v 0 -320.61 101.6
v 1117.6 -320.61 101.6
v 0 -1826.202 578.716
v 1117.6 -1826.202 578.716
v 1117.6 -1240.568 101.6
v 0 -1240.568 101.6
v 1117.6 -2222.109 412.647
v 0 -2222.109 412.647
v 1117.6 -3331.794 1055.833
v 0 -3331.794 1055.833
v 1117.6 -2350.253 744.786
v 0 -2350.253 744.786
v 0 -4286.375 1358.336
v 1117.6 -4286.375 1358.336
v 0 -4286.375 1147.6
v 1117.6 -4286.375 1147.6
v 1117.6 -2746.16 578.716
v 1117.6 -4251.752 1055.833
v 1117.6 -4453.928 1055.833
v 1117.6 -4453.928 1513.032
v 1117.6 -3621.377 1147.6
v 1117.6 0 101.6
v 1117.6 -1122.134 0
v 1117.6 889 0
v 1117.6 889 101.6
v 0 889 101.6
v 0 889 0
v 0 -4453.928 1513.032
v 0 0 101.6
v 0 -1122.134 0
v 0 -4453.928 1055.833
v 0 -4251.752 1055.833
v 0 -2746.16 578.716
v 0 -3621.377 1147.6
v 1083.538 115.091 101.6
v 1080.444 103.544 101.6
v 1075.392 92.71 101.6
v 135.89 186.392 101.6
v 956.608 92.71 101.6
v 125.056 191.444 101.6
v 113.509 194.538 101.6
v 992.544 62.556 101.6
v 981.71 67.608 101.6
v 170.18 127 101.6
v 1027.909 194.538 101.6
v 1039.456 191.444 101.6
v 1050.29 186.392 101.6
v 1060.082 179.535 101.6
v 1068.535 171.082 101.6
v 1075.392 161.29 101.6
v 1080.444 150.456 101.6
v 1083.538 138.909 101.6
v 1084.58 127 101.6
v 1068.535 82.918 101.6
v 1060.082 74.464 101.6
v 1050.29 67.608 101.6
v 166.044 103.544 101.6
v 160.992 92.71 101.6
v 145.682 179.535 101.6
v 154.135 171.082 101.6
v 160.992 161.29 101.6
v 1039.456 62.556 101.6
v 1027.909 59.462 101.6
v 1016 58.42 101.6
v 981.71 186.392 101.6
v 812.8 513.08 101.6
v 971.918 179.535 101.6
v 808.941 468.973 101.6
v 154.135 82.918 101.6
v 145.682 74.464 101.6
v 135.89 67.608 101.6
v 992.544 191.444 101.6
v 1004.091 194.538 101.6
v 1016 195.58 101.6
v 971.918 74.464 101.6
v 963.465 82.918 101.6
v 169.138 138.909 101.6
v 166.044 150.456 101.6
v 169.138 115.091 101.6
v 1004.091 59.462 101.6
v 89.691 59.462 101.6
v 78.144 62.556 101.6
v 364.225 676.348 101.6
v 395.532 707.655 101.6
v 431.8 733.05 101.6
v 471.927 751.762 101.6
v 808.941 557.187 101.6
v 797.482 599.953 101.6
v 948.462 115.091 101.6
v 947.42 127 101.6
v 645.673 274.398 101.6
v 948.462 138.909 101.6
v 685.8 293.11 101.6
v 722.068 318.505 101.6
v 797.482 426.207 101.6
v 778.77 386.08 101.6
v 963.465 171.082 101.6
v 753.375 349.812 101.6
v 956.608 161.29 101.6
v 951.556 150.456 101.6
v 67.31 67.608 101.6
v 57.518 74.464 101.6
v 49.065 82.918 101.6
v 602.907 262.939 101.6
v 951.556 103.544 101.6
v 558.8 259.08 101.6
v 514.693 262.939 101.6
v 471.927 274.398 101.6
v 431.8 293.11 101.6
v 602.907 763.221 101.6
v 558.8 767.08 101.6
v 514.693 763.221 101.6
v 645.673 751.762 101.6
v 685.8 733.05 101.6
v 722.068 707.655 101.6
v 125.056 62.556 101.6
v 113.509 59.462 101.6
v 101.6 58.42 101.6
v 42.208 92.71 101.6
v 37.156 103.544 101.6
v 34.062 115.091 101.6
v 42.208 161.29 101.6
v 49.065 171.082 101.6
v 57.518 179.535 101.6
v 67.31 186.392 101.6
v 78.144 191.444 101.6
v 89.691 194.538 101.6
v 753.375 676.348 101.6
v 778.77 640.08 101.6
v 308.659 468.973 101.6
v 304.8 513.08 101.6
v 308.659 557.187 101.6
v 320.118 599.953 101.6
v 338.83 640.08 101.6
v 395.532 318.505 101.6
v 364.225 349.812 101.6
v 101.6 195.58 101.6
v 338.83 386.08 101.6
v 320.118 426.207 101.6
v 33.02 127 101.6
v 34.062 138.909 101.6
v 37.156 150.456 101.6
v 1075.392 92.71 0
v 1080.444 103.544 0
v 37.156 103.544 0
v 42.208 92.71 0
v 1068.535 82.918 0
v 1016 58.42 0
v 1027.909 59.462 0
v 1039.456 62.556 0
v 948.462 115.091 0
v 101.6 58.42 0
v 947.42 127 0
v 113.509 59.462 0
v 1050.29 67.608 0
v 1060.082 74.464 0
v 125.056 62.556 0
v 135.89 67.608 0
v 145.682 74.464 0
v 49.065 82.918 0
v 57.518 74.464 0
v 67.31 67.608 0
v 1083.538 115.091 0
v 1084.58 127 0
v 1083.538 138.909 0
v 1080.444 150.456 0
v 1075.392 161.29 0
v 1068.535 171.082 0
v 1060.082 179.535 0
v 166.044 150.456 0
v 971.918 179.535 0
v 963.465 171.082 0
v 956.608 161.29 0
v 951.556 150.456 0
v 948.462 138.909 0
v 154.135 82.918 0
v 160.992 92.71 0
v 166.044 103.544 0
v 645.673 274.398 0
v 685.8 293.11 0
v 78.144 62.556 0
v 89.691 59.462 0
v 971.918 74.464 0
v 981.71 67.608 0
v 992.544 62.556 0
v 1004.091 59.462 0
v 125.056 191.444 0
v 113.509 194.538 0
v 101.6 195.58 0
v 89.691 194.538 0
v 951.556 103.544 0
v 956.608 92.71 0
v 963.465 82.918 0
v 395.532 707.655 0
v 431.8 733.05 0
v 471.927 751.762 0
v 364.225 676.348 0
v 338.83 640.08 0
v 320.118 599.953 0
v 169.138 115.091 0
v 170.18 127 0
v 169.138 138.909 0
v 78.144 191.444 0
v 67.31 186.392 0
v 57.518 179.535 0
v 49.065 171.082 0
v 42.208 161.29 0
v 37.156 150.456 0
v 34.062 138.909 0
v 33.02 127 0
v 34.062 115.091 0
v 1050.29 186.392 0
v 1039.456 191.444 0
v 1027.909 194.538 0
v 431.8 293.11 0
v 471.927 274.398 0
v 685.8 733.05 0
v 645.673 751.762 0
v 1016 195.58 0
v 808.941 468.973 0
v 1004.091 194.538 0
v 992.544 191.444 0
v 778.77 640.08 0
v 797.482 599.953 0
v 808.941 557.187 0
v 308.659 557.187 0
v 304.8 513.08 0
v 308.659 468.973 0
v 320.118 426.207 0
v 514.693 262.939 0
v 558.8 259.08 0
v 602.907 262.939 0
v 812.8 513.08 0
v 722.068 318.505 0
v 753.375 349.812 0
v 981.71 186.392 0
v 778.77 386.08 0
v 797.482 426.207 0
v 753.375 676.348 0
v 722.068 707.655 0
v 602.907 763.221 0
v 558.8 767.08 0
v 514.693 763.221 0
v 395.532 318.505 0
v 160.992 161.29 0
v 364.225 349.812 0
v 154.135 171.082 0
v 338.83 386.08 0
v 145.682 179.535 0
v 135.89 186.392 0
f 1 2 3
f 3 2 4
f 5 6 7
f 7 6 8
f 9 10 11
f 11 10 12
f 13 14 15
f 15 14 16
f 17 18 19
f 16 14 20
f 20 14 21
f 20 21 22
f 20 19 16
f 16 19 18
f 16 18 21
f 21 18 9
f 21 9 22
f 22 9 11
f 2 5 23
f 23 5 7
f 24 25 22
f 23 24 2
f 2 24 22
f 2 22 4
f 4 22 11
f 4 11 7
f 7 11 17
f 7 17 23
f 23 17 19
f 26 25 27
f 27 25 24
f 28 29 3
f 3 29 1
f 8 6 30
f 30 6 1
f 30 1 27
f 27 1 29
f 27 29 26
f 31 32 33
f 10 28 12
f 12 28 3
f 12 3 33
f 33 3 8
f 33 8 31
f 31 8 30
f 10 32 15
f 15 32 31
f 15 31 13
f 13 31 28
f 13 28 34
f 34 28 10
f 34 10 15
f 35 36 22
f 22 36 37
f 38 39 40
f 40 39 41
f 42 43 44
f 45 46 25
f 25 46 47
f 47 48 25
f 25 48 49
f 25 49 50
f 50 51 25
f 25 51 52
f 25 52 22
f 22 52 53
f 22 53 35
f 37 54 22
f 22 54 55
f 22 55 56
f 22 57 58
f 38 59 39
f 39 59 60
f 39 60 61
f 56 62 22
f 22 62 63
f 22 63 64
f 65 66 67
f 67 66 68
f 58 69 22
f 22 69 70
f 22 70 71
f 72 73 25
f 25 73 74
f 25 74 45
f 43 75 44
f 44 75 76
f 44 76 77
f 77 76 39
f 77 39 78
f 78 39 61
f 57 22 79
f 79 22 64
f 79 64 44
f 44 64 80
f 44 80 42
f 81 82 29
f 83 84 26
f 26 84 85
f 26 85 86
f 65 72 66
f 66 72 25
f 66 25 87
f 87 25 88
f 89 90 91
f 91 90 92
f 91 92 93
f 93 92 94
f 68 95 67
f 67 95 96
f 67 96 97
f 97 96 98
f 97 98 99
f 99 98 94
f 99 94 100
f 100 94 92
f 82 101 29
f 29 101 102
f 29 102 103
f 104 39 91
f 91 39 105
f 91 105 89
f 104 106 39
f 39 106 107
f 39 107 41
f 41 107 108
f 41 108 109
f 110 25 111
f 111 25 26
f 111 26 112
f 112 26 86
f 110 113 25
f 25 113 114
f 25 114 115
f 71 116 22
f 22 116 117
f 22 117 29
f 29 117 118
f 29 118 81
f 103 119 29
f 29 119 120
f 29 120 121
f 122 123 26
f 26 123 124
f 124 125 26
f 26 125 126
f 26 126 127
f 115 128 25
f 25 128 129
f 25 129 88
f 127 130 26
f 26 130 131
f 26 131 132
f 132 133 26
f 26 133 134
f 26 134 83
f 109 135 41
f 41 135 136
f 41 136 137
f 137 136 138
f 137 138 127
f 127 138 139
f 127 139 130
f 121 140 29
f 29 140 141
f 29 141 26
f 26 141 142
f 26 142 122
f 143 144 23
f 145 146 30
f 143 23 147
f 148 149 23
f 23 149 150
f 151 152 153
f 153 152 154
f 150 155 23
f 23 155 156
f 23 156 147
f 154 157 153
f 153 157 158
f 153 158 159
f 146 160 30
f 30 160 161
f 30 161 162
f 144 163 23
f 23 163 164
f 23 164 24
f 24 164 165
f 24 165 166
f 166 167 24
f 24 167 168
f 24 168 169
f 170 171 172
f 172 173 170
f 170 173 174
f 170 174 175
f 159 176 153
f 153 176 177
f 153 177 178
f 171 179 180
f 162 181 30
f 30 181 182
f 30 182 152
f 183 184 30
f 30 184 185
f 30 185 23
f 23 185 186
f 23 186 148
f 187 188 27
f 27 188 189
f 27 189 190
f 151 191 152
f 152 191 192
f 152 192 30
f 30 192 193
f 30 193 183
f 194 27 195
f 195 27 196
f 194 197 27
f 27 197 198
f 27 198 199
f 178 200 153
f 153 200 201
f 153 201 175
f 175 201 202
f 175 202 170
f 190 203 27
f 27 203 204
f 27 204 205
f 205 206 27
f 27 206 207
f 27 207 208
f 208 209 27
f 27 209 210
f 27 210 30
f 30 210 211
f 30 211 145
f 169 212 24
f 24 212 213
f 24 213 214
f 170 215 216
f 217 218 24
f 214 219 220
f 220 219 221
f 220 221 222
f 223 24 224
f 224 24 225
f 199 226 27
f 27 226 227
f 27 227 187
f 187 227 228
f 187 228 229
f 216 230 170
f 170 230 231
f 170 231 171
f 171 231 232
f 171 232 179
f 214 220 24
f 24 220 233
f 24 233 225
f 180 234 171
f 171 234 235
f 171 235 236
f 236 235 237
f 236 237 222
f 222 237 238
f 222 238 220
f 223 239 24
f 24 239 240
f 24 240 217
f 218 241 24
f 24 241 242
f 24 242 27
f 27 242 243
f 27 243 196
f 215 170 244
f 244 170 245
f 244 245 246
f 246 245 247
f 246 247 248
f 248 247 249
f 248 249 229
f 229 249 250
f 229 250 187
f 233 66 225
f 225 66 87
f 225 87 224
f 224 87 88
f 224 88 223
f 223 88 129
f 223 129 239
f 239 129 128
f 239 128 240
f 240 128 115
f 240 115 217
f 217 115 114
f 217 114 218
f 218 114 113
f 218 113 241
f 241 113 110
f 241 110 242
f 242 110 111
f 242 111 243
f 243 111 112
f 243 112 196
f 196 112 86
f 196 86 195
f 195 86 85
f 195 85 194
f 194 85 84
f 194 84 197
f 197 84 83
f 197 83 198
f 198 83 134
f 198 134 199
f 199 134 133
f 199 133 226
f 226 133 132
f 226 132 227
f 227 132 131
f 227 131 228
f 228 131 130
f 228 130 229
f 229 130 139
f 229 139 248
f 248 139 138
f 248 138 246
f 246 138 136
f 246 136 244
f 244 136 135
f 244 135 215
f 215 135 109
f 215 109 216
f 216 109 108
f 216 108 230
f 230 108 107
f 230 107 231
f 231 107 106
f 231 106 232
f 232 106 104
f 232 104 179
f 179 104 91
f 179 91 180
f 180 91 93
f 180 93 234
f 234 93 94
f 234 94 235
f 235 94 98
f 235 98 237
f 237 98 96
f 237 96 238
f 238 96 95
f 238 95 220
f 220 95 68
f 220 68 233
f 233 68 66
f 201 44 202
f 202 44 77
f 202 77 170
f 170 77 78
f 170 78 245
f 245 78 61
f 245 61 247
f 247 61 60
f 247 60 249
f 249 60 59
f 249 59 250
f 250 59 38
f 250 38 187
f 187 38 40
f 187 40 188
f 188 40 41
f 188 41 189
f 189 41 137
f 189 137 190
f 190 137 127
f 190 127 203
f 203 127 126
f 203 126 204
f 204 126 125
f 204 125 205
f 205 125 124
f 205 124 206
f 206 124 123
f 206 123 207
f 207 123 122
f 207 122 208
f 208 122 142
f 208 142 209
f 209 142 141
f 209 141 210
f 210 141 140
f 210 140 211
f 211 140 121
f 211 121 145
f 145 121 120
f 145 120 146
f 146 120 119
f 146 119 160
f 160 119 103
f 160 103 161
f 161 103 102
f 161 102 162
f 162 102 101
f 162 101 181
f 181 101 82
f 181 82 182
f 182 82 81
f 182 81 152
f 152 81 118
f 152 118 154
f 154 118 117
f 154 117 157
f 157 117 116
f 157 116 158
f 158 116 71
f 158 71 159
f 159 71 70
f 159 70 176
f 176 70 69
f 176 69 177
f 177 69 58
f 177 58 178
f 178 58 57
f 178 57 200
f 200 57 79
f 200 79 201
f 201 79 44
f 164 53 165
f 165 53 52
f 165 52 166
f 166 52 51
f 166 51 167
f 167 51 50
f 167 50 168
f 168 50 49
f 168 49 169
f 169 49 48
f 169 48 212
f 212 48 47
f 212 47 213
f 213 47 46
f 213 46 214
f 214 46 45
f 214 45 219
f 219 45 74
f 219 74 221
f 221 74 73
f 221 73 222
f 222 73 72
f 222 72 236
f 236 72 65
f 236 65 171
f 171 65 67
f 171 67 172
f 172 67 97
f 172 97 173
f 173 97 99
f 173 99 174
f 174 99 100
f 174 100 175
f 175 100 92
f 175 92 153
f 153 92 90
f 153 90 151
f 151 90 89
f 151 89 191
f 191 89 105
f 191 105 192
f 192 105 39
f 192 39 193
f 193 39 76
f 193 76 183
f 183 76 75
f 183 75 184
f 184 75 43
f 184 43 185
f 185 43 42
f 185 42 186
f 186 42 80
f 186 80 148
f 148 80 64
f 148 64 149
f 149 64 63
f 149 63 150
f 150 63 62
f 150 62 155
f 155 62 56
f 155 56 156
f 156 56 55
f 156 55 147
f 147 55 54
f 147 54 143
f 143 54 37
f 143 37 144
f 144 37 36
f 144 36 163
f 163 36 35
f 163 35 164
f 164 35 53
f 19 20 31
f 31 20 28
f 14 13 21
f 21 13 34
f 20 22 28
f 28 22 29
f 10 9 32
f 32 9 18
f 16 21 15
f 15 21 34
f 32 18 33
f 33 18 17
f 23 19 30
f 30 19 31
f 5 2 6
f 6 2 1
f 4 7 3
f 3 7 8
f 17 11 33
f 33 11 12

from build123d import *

# Parameters (mm, degrees)
SKETCH1_W            = 1117.6
SKETCH1_H            = 889
BOSS_EXTRUDE1_DEPTH  = 101.6
SKETCH6_R            = 68.58
SKETCH6_R_2          = 254
CUT_EXTRUDE1_DEPTH   = 492.76
BOSS_EXTRUDE4_DEPTH  = 1117.6
BOSS_EXTRUDE6_DEPTH  = 1117.6
BOSS_EXTRUDE7_DEPTH  = 1117.6
BOSS_EXTRUDE8_DEPTH  = 1117.6
BOSS_EXTRUDE9_DEPTH  = 1117.6
BOSS_EXTRUDE10_DEPTH = 1117.6


with BuildPart() as part:
    # Sketch1 → Boss-Extrude1 (new body)
    with BuildSketch(Plane.XY):
        with Locations((558.8, 444.5)):
            Rectangle(SKETCH1_W, SKETCH1_H)
    extrude(amount=BOSS_EXTRUDE1_DEPTH)

    # Sketch6 → Cut-Extrude1 (cut)
    with BuildSketch(Plane.XY.offset(101.6)):
        with Locations((1016, 127)):
            Circle(SKETCH6_R)
        with Locations((101.6, 127)):
            Circle(SKETCH6_R)
        with Locations((558.8, 513.08)):
            Circle(SKETCH6_R_2)
    extrude(amount=-CUT_EXTRUDE1_DEPTH, mode=Mode.SUBTRACT)

    # Sketch12 → Boss-Extrude4 (add)
    with BuildSketch(Plane(origin=(0, 0, 0), x_dir=(0, 0, -1), z_dir=(1, 0, 0))):
        Polygon((0, 0), (-1411.432447732, -4453.928101196), (-1513.032447732, -4453.928101196), (-101.6, 0), align=None)
    extrude(amount=BOSS_EXTRUDE4_DEPTH)

    # Sketch18 → Boss-Extrude6 (add)
    with BuildSketch(Plane.ZY):
        Polygon((1411.432447732, -4453.928101196), (1055.832447732, -4453.928101196), (1055.832447732, -4286.375258564), (1358.335605254, -4286.375258564), align=None)
    extrude(amount=-BOSS_EXTRUDE6_DEPTH)

    # Sketch19 → Boss-Extrude7 (add)
    with BuildSketch(Plane.ZY):
        Polygon((1055.832447732, -4286.375258564), (1055.832447732, -3331.793750855), (1147.60027144, -3621.377067049), (1147.60027144, -4288.358100244), (1145.651853781, -4286.375258564), align=None)
    extrude(amount=-BOSS_EXTRUDE7_DEPTH)

    # Sketch24 → Boss-Extrude8 (add)
    with BuildSketch(Plane.ZY):
        Polygon((101.6, -1240.567708283), (1055.832447732, -4251.751644756), (1055.832447732, -4453.928101196), (101.6, -1442.744164723), align=None)
    extrude(amount=-BOSS_EXTRUDE8_DEPTH)

    # Sketch22 → Boss-Extrude9 (add)
    with BuildSketch(Plane.ZY):
        Polygon((101.6, -1442.744164723), (101.6, -320.609814383), (0, 0), (0, -1122.13435034), align=None)
    extrude(amount=-BOSS_EXTRUDE9_DEPTH)

    # Sketch27 → Boss-Extrude10 (add)
    with BuildSketch(Plane.ZY):
        Polygon((578.716223866, -2746.159676519), (744.785924807, -2350.252727434), (578.716223866, -1826.201782619), (412.646522926, -2222.108731705), align=None)
    extrude(amount=-BOSS_EXTRUDE10_DEPTH)


solid = part.part
